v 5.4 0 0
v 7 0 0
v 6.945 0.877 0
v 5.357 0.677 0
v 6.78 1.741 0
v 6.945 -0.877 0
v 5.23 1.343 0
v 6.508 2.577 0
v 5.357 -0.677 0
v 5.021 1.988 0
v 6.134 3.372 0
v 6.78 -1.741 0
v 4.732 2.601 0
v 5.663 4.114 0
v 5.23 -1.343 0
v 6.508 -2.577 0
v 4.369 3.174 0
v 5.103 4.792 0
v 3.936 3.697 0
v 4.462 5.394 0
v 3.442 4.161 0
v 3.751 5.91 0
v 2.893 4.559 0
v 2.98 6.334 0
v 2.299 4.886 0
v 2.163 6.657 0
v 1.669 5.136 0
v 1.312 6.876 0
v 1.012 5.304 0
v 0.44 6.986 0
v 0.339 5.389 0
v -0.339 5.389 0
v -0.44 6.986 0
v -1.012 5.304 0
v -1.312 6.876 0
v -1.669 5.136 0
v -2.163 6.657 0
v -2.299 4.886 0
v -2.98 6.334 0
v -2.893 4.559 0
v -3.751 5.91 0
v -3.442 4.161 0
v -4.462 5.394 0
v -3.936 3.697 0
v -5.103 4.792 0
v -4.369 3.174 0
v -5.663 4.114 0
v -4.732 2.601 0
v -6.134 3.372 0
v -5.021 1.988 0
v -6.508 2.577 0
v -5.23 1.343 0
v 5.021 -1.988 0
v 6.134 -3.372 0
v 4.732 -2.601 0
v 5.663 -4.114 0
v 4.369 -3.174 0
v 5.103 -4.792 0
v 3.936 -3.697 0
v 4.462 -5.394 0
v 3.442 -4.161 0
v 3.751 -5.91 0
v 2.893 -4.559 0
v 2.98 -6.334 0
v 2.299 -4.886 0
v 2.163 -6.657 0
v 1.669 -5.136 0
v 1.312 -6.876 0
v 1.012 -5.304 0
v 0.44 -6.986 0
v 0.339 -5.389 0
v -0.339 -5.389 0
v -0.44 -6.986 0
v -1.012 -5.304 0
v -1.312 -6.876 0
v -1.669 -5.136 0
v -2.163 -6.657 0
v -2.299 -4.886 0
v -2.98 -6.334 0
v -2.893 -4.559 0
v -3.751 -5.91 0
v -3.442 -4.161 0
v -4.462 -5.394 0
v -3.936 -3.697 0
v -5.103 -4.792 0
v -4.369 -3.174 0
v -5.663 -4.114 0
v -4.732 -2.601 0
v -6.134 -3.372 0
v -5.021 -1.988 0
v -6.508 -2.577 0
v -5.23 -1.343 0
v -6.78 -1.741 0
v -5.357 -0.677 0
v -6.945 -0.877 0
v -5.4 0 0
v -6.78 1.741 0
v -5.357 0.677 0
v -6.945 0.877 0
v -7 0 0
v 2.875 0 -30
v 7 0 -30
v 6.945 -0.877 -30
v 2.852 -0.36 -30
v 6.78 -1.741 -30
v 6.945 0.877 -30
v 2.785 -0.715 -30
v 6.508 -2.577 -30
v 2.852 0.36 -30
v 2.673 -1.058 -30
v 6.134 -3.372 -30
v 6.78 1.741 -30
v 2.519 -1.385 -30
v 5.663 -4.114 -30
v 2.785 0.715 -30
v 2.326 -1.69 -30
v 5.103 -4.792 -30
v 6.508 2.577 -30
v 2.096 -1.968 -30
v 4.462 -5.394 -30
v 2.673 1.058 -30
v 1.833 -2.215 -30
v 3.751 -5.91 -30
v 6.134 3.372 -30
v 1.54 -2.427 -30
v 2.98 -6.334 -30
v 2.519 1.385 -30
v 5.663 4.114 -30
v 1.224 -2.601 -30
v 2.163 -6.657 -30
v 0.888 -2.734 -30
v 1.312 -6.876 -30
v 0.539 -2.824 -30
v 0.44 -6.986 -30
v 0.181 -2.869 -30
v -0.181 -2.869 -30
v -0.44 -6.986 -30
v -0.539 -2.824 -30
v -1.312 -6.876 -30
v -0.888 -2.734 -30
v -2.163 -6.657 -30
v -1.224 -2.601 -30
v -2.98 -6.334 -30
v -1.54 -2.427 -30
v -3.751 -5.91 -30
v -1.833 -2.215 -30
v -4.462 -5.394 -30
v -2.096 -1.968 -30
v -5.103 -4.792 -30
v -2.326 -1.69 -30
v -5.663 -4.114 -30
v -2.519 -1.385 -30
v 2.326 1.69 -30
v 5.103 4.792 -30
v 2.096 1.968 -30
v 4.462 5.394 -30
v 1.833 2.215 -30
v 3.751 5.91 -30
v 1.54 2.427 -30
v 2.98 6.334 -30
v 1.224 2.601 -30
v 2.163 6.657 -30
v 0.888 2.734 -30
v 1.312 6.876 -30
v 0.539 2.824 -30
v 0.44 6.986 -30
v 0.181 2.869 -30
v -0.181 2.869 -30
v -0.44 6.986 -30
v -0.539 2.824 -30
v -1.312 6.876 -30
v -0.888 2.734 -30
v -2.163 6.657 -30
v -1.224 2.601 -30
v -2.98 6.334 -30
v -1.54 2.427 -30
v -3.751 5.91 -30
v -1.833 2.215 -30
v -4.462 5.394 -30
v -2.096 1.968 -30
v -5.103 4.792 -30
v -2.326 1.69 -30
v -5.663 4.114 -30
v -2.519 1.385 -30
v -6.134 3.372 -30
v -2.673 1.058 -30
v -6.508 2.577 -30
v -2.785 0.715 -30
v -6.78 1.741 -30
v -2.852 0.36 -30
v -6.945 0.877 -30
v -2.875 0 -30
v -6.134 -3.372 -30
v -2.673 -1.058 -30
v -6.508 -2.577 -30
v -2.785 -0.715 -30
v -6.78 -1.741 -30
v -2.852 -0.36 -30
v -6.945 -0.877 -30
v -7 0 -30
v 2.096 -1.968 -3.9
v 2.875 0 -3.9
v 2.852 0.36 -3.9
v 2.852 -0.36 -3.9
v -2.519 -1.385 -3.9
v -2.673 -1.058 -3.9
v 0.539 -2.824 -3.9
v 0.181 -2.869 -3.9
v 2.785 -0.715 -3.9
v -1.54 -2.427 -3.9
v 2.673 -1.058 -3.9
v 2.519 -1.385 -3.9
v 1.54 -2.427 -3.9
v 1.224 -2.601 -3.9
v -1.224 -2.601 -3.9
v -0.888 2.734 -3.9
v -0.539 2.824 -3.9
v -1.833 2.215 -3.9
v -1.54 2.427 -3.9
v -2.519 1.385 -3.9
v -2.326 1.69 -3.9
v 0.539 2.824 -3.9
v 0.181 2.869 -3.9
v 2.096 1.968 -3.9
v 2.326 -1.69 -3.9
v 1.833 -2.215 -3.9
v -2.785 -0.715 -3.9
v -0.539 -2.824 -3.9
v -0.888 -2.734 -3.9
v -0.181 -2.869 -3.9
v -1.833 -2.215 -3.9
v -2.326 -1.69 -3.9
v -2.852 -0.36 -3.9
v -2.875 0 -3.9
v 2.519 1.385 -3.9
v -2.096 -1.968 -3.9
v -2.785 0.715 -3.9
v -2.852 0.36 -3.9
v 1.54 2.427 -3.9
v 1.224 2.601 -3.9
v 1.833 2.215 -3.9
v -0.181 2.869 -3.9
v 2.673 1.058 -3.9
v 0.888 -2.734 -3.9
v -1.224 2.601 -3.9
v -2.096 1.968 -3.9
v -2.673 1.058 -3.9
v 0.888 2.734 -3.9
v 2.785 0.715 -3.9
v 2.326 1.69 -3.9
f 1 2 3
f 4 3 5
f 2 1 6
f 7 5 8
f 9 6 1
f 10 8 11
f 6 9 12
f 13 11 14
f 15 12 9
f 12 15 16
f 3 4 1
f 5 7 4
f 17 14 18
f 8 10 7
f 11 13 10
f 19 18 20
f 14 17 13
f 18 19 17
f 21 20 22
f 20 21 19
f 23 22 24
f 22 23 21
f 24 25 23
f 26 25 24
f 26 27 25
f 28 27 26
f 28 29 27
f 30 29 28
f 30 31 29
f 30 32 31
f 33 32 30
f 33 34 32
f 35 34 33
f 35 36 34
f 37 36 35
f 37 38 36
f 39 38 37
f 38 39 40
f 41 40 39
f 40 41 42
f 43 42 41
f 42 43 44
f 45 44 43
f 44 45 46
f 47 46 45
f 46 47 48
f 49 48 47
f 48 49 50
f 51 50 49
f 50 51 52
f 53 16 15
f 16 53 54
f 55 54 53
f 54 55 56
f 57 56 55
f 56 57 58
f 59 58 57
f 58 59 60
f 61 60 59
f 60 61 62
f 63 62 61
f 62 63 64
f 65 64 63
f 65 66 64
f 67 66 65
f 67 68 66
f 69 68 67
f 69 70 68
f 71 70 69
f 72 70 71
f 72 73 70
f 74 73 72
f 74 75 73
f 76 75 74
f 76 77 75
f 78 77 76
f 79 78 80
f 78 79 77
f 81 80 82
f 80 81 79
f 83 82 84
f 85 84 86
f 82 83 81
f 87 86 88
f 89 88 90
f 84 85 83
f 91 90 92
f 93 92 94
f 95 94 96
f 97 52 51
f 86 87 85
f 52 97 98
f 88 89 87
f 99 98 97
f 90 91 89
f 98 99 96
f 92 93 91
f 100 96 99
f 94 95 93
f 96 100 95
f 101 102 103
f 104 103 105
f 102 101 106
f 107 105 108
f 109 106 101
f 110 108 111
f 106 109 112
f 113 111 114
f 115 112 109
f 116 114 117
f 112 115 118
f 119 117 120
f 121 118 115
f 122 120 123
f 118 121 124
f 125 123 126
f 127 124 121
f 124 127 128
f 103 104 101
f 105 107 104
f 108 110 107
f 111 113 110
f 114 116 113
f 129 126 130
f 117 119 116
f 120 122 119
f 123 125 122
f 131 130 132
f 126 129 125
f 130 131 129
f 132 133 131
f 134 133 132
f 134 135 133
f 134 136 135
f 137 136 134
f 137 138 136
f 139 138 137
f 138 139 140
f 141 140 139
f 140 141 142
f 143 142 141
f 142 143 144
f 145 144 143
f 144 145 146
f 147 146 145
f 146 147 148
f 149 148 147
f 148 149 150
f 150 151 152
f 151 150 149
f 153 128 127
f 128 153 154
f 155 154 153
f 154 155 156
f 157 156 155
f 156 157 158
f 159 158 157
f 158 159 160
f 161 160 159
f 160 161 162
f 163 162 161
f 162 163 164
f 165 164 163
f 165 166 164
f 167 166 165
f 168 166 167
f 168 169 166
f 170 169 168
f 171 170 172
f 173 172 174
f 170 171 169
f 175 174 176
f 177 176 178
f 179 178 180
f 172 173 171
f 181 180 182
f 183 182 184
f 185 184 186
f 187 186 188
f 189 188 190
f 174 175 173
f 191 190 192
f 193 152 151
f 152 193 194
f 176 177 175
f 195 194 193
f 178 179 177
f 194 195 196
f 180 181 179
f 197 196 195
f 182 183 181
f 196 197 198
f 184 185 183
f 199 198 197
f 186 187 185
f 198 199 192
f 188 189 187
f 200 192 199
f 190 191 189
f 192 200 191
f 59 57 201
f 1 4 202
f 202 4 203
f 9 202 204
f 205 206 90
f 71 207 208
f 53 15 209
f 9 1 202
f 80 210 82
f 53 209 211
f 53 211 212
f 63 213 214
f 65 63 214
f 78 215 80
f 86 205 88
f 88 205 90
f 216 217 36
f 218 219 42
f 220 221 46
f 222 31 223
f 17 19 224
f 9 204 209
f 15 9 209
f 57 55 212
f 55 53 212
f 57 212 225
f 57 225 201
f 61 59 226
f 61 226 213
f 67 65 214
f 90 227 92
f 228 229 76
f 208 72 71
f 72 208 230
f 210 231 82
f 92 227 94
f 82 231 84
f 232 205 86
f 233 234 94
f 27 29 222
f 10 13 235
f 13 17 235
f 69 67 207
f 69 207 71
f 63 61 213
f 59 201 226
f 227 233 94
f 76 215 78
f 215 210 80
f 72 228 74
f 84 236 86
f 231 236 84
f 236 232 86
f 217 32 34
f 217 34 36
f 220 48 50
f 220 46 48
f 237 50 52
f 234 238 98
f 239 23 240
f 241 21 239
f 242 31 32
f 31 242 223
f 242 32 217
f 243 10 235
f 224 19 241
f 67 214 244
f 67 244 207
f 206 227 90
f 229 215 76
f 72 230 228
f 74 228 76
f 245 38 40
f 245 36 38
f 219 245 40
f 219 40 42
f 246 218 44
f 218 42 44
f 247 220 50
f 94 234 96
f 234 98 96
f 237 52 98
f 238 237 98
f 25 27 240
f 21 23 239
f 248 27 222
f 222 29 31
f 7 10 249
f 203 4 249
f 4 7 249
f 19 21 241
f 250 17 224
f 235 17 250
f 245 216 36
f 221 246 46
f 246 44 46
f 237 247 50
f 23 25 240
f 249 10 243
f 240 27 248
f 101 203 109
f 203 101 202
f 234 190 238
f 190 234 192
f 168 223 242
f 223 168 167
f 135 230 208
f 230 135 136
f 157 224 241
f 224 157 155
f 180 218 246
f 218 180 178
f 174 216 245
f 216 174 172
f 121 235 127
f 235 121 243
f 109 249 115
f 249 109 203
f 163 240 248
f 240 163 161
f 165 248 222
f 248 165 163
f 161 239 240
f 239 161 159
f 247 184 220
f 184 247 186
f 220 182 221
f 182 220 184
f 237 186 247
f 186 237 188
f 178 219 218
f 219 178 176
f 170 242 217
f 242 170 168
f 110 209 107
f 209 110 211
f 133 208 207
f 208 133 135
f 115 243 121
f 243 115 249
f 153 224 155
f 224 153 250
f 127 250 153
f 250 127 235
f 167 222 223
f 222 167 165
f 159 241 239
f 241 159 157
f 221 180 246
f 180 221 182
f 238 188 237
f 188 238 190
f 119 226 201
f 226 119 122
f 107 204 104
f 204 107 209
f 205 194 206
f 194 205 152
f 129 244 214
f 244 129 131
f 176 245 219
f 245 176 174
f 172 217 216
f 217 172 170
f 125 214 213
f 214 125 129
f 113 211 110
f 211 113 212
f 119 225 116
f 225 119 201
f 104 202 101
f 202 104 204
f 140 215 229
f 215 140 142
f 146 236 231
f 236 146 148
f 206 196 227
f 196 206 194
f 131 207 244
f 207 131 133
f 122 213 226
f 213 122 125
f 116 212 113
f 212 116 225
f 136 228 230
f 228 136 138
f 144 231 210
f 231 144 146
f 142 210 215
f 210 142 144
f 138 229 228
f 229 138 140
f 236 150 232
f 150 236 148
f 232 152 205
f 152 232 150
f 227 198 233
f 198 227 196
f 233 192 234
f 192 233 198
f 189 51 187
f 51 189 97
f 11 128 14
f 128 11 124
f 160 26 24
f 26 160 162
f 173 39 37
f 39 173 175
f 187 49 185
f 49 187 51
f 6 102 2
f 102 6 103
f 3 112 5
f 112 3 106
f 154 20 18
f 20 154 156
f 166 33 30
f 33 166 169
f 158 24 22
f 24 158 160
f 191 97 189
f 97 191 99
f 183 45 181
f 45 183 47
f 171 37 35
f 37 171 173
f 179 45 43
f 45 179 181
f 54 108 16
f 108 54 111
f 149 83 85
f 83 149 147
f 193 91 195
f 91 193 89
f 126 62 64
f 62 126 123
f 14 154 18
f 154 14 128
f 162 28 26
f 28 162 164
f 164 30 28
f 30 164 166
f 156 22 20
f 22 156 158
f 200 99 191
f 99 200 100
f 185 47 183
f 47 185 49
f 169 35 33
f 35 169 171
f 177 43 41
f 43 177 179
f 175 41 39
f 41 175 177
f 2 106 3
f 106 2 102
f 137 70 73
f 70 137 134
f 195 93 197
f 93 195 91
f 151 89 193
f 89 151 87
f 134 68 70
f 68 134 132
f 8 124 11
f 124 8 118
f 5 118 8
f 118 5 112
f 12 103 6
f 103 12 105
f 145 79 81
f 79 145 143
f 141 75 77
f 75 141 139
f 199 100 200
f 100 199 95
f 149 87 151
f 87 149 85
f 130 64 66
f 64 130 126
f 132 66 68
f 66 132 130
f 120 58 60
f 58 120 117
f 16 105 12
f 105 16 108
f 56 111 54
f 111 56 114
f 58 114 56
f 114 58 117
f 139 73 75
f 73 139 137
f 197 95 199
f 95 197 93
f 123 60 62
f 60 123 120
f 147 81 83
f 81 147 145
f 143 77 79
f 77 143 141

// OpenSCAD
$fn = 50;


difference() {
	union() {
		translate(v = [0, 0, -30.0000000000]) {
			cylinder(h = 30, r = 7.0000000000);
		}
		cylinder(h = 0, r = 13.0000000000);
	}
	union() {
		translate(v = [0, 0, 0]) {
			rotate(a = [0, 0, 0]) {
				difference() {
					union() {
						#translate(v = [0, 0, -30.0000000000]) {
							cylinder(h = 30, r = 2.6000000000);
						}
						#translate(v = [0, 0, -3.9000000000]) {
							cylinder(h = 3.9000000000, r1 = 2.8750000000, r2 = 5.4000000000);
						}
						#translate(v = [0, 0, -30.0000000000]) {
							cylinder(h = 30, r = 2.8750000000);
						}
						#translate(v = [0, 0, -30.0000000000]) {
							cylinder(h = 30, r = 2.6000000000);
						}
					}
					union();
				}
			}
		}
	}
}
